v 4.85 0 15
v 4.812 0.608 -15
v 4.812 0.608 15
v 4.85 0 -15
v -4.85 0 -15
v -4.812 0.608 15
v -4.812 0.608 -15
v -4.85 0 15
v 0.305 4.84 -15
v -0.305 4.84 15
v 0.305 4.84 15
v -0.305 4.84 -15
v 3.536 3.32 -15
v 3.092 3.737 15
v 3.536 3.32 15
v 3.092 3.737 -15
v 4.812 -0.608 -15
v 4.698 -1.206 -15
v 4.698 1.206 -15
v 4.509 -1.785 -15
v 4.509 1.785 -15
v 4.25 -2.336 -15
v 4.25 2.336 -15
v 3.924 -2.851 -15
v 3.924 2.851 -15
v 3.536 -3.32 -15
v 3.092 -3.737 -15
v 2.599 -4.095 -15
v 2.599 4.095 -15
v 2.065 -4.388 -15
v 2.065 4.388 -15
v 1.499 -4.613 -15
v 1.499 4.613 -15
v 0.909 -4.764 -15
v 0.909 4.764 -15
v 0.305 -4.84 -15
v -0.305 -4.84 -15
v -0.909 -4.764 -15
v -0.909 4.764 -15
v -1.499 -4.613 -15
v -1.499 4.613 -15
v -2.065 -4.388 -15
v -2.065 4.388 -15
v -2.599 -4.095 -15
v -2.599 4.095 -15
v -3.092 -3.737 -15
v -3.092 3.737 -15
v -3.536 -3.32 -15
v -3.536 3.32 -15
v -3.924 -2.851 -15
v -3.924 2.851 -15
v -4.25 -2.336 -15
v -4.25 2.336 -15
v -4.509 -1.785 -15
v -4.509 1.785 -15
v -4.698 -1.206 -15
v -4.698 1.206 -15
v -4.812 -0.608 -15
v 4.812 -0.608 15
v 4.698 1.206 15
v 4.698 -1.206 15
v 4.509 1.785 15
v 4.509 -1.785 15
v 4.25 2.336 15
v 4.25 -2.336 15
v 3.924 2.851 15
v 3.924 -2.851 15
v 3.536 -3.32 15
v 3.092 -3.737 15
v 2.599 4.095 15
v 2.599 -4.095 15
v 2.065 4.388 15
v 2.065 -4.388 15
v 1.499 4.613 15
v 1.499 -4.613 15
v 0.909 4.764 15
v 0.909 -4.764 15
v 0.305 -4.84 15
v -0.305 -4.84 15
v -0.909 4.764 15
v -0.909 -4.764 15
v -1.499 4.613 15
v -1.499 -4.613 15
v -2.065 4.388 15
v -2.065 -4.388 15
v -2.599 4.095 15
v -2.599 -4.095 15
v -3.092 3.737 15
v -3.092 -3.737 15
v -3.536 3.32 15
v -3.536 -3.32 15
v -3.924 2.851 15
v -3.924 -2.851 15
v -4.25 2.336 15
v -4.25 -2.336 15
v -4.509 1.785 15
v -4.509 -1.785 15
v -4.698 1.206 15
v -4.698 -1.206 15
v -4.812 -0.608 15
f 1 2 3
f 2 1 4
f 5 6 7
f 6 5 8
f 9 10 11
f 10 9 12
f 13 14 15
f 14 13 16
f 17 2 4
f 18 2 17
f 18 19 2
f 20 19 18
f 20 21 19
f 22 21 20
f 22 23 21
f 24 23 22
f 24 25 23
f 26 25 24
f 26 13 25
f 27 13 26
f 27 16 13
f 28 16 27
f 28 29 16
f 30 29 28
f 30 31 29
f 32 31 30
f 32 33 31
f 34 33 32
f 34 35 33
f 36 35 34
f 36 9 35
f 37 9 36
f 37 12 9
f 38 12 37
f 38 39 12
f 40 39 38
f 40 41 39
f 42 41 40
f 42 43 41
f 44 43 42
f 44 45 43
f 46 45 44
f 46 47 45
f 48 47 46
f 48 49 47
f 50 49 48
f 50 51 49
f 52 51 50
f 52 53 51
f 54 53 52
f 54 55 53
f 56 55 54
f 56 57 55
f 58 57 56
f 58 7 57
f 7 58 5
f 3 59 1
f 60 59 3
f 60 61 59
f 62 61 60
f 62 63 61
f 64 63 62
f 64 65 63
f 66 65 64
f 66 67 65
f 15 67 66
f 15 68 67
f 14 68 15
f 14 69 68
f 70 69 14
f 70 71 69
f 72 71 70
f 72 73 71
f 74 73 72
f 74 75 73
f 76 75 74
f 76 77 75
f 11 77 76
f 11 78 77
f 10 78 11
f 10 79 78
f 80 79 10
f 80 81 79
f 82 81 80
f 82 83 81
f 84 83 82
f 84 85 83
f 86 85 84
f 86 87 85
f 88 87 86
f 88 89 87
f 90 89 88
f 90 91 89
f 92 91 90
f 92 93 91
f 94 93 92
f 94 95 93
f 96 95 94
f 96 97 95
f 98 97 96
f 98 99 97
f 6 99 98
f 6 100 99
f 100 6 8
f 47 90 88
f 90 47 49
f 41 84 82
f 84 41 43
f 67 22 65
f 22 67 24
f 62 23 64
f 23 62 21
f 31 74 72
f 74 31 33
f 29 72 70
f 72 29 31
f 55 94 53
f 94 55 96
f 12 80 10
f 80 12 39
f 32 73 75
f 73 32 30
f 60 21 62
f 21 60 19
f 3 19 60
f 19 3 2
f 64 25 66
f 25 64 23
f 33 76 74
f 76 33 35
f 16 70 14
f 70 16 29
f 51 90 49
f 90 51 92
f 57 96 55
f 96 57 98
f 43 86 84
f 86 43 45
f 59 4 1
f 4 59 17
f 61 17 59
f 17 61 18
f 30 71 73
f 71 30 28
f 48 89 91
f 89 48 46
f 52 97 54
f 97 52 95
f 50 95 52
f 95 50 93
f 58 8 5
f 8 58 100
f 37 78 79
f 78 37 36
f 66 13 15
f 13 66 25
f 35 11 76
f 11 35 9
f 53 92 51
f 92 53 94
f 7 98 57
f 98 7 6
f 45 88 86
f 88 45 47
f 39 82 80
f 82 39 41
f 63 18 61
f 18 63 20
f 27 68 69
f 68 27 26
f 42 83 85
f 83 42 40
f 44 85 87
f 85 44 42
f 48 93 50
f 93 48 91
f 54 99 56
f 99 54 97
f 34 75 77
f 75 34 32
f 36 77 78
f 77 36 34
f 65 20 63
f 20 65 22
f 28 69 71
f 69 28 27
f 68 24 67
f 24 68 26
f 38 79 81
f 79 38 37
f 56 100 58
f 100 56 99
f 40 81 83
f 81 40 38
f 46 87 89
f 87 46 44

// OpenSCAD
$fn = 50;


difference() {
	union() {
		translate(v = [0, 0, -15.0000000000]) {
			cylinder(h = 30, r = 4.8500000000);
		}
	}
	union() {
		translate(v = [0, 0, -100.0000000000]) {
			cylinder(h = 200, r = 0);
		}
	}
}
